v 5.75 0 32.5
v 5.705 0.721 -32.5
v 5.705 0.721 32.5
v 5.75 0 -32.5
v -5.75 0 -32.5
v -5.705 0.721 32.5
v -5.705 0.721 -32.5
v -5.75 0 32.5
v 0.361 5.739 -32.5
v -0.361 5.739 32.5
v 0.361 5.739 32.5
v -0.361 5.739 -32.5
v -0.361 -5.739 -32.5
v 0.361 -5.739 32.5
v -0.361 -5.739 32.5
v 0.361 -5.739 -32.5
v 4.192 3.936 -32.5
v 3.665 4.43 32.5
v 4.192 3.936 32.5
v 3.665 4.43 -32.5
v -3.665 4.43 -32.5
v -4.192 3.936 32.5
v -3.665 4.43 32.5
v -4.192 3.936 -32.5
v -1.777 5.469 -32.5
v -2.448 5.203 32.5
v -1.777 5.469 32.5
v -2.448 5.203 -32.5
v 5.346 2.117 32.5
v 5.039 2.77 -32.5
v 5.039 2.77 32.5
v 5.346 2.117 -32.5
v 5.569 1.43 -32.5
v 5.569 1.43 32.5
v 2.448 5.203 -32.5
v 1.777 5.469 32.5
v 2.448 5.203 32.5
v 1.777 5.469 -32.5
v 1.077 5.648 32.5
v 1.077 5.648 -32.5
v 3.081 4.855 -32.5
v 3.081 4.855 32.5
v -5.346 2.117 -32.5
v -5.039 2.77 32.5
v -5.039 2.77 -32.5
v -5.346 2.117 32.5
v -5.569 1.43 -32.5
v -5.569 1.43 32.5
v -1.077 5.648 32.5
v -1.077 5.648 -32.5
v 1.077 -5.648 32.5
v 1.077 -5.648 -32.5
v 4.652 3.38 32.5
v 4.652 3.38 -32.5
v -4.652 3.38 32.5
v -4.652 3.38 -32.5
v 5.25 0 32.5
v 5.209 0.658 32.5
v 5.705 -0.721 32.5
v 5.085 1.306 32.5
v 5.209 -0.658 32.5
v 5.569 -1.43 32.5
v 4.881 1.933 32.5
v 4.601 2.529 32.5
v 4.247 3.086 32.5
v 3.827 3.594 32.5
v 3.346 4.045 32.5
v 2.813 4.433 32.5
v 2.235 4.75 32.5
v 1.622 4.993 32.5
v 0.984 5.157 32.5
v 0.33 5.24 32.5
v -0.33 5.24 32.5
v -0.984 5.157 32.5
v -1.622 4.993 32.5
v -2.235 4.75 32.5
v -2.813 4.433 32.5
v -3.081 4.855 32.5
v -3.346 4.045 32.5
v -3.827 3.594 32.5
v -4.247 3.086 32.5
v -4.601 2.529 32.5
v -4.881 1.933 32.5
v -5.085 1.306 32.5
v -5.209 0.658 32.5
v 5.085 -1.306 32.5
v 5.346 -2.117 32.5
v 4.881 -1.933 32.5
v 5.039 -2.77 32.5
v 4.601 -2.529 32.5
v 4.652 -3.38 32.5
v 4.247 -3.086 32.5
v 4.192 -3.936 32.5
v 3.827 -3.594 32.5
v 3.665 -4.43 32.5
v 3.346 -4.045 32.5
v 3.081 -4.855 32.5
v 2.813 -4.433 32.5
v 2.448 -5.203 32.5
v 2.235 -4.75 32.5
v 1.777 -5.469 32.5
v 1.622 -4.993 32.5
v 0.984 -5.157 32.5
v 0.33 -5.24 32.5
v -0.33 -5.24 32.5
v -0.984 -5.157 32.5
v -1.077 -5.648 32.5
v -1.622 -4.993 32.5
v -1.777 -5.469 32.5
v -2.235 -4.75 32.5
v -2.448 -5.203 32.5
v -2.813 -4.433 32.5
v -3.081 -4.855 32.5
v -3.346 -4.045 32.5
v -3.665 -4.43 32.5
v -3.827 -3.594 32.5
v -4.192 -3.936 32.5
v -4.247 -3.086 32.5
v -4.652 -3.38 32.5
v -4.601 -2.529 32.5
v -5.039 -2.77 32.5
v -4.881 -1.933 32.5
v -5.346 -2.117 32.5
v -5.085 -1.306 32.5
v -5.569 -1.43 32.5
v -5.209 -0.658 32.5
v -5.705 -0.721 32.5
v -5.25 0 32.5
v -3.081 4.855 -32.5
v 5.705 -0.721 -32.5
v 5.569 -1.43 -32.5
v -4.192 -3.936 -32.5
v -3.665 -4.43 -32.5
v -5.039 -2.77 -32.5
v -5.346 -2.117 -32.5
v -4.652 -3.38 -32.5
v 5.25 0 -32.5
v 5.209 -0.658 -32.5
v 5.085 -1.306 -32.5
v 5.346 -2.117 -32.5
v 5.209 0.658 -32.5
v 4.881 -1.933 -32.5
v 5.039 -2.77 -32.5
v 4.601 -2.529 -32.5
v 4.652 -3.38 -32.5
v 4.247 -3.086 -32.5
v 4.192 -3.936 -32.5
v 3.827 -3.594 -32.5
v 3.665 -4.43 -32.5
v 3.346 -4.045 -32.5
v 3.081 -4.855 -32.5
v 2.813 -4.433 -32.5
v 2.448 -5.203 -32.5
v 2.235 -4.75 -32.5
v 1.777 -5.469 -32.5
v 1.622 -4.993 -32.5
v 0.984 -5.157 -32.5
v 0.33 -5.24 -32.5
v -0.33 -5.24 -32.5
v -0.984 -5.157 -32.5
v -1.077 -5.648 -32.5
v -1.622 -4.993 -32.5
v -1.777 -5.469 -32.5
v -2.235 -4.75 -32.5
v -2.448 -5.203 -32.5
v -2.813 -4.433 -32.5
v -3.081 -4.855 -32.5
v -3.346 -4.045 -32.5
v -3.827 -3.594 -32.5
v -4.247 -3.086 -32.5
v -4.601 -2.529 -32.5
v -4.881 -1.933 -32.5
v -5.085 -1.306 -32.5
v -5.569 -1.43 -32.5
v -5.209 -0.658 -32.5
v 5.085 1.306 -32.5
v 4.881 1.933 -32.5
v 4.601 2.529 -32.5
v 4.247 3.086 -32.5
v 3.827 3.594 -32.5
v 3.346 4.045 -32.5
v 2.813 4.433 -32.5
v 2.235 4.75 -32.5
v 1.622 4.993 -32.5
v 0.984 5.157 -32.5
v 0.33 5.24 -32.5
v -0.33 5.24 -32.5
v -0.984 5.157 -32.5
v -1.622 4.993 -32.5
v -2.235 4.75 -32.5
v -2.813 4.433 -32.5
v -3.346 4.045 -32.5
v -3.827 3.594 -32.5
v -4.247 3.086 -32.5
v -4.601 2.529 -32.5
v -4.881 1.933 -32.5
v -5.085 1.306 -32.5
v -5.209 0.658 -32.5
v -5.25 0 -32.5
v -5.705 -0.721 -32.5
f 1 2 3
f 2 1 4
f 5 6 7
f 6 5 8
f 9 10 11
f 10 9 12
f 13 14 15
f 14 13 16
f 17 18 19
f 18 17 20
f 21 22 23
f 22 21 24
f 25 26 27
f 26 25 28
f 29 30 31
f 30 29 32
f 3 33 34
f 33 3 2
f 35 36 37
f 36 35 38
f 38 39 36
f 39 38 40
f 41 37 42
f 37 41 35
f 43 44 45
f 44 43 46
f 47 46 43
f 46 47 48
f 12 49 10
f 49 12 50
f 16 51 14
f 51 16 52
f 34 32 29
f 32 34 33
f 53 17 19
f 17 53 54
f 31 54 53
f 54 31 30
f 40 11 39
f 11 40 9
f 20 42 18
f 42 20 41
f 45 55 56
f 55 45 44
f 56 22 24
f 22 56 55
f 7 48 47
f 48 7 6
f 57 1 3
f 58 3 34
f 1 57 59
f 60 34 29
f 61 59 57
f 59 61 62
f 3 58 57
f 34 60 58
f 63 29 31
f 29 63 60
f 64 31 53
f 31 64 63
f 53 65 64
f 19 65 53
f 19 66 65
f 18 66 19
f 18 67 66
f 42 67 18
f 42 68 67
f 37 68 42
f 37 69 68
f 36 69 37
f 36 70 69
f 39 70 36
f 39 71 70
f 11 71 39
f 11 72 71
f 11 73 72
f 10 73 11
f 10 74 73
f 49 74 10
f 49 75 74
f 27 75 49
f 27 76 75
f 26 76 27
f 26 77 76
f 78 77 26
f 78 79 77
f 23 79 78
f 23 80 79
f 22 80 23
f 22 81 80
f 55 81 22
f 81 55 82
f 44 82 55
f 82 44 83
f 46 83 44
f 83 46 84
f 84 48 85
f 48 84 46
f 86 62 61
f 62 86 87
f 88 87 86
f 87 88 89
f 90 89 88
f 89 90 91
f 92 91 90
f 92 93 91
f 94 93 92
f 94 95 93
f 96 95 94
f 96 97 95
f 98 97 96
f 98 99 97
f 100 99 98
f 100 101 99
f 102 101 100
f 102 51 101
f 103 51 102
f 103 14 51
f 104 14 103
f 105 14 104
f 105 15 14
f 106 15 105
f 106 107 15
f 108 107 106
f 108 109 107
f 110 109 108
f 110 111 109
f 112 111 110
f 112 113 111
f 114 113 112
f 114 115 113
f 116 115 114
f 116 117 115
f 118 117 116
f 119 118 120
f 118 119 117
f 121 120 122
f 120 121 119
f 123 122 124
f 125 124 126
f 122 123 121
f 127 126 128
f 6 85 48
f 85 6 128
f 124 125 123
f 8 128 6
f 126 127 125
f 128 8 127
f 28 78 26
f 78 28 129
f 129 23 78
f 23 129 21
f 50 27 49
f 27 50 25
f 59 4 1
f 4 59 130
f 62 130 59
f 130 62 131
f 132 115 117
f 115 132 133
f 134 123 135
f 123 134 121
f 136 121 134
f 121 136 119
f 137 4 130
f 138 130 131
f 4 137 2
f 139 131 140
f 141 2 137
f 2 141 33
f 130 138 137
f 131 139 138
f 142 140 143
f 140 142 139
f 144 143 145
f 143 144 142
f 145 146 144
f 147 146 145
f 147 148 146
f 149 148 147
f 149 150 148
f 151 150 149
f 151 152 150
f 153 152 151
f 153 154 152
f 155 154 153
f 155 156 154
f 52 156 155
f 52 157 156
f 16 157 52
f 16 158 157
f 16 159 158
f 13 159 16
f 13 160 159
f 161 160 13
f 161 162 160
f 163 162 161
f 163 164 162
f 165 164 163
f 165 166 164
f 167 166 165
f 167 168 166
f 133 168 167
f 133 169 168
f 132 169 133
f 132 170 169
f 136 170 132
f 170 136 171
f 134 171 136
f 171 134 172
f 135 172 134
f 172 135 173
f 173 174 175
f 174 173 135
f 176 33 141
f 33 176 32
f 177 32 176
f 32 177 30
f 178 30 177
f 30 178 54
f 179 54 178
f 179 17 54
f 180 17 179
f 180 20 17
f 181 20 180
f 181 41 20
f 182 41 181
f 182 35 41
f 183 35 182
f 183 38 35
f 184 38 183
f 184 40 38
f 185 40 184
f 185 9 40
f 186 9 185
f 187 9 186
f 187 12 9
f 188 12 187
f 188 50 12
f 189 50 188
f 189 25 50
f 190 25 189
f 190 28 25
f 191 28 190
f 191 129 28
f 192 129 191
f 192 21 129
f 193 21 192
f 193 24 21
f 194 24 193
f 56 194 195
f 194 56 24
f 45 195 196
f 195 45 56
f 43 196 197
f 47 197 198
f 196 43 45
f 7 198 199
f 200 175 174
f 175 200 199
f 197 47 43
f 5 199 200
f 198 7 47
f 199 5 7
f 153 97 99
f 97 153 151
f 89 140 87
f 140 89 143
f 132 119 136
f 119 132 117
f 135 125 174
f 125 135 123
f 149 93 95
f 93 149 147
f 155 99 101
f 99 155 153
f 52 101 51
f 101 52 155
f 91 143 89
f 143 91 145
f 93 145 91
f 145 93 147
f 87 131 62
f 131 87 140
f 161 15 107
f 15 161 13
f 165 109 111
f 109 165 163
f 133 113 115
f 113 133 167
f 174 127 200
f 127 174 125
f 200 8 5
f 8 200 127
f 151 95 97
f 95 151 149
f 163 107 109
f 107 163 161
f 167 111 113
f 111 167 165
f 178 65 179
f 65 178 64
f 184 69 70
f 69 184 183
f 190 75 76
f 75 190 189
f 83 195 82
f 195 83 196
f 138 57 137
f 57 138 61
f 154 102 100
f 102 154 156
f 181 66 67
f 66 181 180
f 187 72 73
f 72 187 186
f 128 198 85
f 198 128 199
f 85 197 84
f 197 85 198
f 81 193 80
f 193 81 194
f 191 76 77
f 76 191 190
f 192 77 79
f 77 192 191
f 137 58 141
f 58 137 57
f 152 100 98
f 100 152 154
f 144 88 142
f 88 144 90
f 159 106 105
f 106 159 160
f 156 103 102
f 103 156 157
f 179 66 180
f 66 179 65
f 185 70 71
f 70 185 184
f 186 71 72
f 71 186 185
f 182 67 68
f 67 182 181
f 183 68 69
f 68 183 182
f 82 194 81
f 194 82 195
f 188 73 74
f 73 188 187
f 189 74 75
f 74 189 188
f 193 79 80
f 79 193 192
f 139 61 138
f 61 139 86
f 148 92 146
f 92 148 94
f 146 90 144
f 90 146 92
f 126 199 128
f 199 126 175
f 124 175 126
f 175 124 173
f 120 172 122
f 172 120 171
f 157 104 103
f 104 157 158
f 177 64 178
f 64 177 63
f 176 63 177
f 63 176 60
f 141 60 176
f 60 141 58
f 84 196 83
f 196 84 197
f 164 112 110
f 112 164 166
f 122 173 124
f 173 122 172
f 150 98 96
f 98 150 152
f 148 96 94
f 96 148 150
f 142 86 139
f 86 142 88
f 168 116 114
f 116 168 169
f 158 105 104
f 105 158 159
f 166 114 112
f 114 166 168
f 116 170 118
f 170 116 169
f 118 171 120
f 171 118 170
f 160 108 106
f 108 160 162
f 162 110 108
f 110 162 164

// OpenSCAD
$fn = 50;


difference() {
	union() {
		translate(v = [0, 0, -32.5000000000]) {
			cylinder(h = 65, r = 5.7500000000);
		}
	}
	union() {
		translate(v = [0, 0, -100.0000000000]) {
			cylinder(h = 200, r = 5.2500000000);
		}
	}
}
